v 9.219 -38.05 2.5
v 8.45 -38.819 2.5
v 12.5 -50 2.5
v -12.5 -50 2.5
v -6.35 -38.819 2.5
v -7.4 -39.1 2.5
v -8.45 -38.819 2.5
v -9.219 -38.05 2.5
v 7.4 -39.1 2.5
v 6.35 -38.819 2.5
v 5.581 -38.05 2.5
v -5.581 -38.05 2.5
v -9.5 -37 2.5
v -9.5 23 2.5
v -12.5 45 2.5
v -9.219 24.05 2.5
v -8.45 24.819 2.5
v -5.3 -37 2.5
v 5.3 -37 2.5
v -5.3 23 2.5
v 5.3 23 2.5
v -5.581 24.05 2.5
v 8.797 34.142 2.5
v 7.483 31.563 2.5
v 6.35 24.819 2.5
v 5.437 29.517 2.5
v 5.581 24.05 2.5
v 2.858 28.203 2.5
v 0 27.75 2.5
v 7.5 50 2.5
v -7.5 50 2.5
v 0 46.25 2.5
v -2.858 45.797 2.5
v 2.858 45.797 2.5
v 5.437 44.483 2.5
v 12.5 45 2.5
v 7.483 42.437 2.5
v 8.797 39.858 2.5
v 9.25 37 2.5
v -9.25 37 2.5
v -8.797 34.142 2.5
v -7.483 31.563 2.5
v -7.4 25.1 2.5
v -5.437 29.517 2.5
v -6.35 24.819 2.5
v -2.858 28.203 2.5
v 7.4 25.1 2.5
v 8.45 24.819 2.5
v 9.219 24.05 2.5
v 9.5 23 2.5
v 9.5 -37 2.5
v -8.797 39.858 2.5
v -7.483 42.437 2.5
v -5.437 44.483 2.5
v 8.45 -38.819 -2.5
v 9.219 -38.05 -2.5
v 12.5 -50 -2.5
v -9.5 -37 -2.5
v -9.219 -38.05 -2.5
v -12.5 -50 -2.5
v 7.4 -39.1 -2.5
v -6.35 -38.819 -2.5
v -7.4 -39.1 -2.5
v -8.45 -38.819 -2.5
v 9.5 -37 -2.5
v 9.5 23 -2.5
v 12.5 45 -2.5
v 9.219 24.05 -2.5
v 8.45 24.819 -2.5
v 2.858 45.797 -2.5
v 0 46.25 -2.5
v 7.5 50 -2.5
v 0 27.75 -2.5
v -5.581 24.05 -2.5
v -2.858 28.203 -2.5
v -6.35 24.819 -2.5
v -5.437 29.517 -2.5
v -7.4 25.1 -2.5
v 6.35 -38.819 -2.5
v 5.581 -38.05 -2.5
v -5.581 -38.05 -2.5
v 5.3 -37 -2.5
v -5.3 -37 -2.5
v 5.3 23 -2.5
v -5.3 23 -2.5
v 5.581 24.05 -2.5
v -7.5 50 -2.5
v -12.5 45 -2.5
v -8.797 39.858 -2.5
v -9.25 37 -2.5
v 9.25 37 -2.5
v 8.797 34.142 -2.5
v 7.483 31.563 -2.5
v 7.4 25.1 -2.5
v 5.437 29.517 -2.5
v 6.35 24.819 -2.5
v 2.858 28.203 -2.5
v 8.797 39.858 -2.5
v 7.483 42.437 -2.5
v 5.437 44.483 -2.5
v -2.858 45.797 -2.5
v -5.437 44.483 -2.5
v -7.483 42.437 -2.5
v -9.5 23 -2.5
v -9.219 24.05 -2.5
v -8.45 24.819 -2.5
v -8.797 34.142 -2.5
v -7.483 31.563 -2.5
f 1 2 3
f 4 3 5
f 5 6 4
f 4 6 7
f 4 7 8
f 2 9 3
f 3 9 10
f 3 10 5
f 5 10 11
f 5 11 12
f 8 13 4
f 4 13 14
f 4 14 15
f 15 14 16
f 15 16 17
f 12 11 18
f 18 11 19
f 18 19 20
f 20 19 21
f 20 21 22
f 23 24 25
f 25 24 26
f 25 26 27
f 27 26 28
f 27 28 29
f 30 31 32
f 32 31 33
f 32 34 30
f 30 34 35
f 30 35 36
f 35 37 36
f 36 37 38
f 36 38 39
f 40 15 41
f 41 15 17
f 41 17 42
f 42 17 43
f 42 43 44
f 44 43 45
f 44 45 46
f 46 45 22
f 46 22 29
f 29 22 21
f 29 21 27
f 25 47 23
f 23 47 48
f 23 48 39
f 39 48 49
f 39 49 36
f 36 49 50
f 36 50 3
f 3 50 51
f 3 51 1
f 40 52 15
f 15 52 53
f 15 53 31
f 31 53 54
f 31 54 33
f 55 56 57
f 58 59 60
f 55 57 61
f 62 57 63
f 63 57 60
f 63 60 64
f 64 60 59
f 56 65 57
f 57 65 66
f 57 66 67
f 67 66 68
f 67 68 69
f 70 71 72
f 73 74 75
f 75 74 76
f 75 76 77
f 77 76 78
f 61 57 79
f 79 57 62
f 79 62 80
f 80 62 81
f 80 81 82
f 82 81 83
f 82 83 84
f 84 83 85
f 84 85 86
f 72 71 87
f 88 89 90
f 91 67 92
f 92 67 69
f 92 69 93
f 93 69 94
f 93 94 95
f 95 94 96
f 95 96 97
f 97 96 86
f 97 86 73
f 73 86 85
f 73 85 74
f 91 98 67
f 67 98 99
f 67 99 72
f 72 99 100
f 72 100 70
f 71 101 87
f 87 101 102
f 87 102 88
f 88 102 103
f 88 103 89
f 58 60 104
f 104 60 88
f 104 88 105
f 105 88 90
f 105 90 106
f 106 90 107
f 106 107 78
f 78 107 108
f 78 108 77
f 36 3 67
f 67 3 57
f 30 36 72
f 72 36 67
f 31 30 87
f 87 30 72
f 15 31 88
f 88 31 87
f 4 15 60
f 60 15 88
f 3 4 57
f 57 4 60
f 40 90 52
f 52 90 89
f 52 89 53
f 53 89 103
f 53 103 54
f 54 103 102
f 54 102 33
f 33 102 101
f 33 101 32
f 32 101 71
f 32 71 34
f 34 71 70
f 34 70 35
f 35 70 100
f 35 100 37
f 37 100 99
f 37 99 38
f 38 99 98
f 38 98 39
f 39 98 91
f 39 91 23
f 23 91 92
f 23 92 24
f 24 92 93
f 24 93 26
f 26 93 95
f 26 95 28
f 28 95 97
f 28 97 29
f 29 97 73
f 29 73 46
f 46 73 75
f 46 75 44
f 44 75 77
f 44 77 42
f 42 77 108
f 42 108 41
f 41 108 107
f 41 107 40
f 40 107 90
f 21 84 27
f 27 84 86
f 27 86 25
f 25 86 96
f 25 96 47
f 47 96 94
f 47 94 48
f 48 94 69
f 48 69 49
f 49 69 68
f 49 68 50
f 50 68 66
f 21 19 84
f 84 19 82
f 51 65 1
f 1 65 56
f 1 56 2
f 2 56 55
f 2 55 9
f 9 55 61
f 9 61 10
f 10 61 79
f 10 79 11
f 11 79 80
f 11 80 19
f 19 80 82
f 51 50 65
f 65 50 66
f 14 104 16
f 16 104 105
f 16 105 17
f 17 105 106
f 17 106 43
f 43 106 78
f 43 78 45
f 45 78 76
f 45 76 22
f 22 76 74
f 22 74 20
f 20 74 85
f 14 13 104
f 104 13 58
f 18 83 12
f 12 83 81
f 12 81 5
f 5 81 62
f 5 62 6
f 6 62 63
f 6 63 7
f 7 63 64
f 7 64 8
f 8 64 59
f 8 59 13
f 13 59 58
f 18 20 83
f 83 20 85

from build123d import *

# Parameters (mm, degrees)
SKETCH1_R           = 9.25
BOSS_EXTRUDE1_DEPTH = 2.5


with BuildPart() as part:
    # Sketch1 → Boss-Extrude1 (new, symmetric)
    with BuildSketch(Plane.XY):
        Polygon((-7.5, 50), (7.5, 50), (12.5, 45), (12.5, -50), (-12.5, -50), (-12.5, 45), align=None)
        with Locations((0, 37)):
            Circle(SKETCH1_R, mode=Mode.SUBTRACT)
        with BuildLine():
            Line((9.5, 23), (9.5, -37))
            ThreePointArc((9.5, -37), (7.4, -39.1), (5.3, -37))
            Line((5.3, -37), (5.3, 23))
            ThreePointArc((5.3, 23), (7.4, 25.1), (9.5, 23))
        make_face(mode=Mode.SUBTRACT)
        with BuildLine():
            Line((-9.5, 23), (-9.5, -37))
            ThreePointArc((-9.5, -37), (-7.4, -39.1), (-5.3, -37))
            Line((-5.3, -37), (-5.3, 23))
            ThreePointArc((-5.3, 23), (-7.4, 25.1), (-9.5, 23))
        make_face(mode=Mode.SUBTRACT)
    extrude(amount=BOSS_EXTRUDE1_DEPTH, both=True)


solid = part.part
